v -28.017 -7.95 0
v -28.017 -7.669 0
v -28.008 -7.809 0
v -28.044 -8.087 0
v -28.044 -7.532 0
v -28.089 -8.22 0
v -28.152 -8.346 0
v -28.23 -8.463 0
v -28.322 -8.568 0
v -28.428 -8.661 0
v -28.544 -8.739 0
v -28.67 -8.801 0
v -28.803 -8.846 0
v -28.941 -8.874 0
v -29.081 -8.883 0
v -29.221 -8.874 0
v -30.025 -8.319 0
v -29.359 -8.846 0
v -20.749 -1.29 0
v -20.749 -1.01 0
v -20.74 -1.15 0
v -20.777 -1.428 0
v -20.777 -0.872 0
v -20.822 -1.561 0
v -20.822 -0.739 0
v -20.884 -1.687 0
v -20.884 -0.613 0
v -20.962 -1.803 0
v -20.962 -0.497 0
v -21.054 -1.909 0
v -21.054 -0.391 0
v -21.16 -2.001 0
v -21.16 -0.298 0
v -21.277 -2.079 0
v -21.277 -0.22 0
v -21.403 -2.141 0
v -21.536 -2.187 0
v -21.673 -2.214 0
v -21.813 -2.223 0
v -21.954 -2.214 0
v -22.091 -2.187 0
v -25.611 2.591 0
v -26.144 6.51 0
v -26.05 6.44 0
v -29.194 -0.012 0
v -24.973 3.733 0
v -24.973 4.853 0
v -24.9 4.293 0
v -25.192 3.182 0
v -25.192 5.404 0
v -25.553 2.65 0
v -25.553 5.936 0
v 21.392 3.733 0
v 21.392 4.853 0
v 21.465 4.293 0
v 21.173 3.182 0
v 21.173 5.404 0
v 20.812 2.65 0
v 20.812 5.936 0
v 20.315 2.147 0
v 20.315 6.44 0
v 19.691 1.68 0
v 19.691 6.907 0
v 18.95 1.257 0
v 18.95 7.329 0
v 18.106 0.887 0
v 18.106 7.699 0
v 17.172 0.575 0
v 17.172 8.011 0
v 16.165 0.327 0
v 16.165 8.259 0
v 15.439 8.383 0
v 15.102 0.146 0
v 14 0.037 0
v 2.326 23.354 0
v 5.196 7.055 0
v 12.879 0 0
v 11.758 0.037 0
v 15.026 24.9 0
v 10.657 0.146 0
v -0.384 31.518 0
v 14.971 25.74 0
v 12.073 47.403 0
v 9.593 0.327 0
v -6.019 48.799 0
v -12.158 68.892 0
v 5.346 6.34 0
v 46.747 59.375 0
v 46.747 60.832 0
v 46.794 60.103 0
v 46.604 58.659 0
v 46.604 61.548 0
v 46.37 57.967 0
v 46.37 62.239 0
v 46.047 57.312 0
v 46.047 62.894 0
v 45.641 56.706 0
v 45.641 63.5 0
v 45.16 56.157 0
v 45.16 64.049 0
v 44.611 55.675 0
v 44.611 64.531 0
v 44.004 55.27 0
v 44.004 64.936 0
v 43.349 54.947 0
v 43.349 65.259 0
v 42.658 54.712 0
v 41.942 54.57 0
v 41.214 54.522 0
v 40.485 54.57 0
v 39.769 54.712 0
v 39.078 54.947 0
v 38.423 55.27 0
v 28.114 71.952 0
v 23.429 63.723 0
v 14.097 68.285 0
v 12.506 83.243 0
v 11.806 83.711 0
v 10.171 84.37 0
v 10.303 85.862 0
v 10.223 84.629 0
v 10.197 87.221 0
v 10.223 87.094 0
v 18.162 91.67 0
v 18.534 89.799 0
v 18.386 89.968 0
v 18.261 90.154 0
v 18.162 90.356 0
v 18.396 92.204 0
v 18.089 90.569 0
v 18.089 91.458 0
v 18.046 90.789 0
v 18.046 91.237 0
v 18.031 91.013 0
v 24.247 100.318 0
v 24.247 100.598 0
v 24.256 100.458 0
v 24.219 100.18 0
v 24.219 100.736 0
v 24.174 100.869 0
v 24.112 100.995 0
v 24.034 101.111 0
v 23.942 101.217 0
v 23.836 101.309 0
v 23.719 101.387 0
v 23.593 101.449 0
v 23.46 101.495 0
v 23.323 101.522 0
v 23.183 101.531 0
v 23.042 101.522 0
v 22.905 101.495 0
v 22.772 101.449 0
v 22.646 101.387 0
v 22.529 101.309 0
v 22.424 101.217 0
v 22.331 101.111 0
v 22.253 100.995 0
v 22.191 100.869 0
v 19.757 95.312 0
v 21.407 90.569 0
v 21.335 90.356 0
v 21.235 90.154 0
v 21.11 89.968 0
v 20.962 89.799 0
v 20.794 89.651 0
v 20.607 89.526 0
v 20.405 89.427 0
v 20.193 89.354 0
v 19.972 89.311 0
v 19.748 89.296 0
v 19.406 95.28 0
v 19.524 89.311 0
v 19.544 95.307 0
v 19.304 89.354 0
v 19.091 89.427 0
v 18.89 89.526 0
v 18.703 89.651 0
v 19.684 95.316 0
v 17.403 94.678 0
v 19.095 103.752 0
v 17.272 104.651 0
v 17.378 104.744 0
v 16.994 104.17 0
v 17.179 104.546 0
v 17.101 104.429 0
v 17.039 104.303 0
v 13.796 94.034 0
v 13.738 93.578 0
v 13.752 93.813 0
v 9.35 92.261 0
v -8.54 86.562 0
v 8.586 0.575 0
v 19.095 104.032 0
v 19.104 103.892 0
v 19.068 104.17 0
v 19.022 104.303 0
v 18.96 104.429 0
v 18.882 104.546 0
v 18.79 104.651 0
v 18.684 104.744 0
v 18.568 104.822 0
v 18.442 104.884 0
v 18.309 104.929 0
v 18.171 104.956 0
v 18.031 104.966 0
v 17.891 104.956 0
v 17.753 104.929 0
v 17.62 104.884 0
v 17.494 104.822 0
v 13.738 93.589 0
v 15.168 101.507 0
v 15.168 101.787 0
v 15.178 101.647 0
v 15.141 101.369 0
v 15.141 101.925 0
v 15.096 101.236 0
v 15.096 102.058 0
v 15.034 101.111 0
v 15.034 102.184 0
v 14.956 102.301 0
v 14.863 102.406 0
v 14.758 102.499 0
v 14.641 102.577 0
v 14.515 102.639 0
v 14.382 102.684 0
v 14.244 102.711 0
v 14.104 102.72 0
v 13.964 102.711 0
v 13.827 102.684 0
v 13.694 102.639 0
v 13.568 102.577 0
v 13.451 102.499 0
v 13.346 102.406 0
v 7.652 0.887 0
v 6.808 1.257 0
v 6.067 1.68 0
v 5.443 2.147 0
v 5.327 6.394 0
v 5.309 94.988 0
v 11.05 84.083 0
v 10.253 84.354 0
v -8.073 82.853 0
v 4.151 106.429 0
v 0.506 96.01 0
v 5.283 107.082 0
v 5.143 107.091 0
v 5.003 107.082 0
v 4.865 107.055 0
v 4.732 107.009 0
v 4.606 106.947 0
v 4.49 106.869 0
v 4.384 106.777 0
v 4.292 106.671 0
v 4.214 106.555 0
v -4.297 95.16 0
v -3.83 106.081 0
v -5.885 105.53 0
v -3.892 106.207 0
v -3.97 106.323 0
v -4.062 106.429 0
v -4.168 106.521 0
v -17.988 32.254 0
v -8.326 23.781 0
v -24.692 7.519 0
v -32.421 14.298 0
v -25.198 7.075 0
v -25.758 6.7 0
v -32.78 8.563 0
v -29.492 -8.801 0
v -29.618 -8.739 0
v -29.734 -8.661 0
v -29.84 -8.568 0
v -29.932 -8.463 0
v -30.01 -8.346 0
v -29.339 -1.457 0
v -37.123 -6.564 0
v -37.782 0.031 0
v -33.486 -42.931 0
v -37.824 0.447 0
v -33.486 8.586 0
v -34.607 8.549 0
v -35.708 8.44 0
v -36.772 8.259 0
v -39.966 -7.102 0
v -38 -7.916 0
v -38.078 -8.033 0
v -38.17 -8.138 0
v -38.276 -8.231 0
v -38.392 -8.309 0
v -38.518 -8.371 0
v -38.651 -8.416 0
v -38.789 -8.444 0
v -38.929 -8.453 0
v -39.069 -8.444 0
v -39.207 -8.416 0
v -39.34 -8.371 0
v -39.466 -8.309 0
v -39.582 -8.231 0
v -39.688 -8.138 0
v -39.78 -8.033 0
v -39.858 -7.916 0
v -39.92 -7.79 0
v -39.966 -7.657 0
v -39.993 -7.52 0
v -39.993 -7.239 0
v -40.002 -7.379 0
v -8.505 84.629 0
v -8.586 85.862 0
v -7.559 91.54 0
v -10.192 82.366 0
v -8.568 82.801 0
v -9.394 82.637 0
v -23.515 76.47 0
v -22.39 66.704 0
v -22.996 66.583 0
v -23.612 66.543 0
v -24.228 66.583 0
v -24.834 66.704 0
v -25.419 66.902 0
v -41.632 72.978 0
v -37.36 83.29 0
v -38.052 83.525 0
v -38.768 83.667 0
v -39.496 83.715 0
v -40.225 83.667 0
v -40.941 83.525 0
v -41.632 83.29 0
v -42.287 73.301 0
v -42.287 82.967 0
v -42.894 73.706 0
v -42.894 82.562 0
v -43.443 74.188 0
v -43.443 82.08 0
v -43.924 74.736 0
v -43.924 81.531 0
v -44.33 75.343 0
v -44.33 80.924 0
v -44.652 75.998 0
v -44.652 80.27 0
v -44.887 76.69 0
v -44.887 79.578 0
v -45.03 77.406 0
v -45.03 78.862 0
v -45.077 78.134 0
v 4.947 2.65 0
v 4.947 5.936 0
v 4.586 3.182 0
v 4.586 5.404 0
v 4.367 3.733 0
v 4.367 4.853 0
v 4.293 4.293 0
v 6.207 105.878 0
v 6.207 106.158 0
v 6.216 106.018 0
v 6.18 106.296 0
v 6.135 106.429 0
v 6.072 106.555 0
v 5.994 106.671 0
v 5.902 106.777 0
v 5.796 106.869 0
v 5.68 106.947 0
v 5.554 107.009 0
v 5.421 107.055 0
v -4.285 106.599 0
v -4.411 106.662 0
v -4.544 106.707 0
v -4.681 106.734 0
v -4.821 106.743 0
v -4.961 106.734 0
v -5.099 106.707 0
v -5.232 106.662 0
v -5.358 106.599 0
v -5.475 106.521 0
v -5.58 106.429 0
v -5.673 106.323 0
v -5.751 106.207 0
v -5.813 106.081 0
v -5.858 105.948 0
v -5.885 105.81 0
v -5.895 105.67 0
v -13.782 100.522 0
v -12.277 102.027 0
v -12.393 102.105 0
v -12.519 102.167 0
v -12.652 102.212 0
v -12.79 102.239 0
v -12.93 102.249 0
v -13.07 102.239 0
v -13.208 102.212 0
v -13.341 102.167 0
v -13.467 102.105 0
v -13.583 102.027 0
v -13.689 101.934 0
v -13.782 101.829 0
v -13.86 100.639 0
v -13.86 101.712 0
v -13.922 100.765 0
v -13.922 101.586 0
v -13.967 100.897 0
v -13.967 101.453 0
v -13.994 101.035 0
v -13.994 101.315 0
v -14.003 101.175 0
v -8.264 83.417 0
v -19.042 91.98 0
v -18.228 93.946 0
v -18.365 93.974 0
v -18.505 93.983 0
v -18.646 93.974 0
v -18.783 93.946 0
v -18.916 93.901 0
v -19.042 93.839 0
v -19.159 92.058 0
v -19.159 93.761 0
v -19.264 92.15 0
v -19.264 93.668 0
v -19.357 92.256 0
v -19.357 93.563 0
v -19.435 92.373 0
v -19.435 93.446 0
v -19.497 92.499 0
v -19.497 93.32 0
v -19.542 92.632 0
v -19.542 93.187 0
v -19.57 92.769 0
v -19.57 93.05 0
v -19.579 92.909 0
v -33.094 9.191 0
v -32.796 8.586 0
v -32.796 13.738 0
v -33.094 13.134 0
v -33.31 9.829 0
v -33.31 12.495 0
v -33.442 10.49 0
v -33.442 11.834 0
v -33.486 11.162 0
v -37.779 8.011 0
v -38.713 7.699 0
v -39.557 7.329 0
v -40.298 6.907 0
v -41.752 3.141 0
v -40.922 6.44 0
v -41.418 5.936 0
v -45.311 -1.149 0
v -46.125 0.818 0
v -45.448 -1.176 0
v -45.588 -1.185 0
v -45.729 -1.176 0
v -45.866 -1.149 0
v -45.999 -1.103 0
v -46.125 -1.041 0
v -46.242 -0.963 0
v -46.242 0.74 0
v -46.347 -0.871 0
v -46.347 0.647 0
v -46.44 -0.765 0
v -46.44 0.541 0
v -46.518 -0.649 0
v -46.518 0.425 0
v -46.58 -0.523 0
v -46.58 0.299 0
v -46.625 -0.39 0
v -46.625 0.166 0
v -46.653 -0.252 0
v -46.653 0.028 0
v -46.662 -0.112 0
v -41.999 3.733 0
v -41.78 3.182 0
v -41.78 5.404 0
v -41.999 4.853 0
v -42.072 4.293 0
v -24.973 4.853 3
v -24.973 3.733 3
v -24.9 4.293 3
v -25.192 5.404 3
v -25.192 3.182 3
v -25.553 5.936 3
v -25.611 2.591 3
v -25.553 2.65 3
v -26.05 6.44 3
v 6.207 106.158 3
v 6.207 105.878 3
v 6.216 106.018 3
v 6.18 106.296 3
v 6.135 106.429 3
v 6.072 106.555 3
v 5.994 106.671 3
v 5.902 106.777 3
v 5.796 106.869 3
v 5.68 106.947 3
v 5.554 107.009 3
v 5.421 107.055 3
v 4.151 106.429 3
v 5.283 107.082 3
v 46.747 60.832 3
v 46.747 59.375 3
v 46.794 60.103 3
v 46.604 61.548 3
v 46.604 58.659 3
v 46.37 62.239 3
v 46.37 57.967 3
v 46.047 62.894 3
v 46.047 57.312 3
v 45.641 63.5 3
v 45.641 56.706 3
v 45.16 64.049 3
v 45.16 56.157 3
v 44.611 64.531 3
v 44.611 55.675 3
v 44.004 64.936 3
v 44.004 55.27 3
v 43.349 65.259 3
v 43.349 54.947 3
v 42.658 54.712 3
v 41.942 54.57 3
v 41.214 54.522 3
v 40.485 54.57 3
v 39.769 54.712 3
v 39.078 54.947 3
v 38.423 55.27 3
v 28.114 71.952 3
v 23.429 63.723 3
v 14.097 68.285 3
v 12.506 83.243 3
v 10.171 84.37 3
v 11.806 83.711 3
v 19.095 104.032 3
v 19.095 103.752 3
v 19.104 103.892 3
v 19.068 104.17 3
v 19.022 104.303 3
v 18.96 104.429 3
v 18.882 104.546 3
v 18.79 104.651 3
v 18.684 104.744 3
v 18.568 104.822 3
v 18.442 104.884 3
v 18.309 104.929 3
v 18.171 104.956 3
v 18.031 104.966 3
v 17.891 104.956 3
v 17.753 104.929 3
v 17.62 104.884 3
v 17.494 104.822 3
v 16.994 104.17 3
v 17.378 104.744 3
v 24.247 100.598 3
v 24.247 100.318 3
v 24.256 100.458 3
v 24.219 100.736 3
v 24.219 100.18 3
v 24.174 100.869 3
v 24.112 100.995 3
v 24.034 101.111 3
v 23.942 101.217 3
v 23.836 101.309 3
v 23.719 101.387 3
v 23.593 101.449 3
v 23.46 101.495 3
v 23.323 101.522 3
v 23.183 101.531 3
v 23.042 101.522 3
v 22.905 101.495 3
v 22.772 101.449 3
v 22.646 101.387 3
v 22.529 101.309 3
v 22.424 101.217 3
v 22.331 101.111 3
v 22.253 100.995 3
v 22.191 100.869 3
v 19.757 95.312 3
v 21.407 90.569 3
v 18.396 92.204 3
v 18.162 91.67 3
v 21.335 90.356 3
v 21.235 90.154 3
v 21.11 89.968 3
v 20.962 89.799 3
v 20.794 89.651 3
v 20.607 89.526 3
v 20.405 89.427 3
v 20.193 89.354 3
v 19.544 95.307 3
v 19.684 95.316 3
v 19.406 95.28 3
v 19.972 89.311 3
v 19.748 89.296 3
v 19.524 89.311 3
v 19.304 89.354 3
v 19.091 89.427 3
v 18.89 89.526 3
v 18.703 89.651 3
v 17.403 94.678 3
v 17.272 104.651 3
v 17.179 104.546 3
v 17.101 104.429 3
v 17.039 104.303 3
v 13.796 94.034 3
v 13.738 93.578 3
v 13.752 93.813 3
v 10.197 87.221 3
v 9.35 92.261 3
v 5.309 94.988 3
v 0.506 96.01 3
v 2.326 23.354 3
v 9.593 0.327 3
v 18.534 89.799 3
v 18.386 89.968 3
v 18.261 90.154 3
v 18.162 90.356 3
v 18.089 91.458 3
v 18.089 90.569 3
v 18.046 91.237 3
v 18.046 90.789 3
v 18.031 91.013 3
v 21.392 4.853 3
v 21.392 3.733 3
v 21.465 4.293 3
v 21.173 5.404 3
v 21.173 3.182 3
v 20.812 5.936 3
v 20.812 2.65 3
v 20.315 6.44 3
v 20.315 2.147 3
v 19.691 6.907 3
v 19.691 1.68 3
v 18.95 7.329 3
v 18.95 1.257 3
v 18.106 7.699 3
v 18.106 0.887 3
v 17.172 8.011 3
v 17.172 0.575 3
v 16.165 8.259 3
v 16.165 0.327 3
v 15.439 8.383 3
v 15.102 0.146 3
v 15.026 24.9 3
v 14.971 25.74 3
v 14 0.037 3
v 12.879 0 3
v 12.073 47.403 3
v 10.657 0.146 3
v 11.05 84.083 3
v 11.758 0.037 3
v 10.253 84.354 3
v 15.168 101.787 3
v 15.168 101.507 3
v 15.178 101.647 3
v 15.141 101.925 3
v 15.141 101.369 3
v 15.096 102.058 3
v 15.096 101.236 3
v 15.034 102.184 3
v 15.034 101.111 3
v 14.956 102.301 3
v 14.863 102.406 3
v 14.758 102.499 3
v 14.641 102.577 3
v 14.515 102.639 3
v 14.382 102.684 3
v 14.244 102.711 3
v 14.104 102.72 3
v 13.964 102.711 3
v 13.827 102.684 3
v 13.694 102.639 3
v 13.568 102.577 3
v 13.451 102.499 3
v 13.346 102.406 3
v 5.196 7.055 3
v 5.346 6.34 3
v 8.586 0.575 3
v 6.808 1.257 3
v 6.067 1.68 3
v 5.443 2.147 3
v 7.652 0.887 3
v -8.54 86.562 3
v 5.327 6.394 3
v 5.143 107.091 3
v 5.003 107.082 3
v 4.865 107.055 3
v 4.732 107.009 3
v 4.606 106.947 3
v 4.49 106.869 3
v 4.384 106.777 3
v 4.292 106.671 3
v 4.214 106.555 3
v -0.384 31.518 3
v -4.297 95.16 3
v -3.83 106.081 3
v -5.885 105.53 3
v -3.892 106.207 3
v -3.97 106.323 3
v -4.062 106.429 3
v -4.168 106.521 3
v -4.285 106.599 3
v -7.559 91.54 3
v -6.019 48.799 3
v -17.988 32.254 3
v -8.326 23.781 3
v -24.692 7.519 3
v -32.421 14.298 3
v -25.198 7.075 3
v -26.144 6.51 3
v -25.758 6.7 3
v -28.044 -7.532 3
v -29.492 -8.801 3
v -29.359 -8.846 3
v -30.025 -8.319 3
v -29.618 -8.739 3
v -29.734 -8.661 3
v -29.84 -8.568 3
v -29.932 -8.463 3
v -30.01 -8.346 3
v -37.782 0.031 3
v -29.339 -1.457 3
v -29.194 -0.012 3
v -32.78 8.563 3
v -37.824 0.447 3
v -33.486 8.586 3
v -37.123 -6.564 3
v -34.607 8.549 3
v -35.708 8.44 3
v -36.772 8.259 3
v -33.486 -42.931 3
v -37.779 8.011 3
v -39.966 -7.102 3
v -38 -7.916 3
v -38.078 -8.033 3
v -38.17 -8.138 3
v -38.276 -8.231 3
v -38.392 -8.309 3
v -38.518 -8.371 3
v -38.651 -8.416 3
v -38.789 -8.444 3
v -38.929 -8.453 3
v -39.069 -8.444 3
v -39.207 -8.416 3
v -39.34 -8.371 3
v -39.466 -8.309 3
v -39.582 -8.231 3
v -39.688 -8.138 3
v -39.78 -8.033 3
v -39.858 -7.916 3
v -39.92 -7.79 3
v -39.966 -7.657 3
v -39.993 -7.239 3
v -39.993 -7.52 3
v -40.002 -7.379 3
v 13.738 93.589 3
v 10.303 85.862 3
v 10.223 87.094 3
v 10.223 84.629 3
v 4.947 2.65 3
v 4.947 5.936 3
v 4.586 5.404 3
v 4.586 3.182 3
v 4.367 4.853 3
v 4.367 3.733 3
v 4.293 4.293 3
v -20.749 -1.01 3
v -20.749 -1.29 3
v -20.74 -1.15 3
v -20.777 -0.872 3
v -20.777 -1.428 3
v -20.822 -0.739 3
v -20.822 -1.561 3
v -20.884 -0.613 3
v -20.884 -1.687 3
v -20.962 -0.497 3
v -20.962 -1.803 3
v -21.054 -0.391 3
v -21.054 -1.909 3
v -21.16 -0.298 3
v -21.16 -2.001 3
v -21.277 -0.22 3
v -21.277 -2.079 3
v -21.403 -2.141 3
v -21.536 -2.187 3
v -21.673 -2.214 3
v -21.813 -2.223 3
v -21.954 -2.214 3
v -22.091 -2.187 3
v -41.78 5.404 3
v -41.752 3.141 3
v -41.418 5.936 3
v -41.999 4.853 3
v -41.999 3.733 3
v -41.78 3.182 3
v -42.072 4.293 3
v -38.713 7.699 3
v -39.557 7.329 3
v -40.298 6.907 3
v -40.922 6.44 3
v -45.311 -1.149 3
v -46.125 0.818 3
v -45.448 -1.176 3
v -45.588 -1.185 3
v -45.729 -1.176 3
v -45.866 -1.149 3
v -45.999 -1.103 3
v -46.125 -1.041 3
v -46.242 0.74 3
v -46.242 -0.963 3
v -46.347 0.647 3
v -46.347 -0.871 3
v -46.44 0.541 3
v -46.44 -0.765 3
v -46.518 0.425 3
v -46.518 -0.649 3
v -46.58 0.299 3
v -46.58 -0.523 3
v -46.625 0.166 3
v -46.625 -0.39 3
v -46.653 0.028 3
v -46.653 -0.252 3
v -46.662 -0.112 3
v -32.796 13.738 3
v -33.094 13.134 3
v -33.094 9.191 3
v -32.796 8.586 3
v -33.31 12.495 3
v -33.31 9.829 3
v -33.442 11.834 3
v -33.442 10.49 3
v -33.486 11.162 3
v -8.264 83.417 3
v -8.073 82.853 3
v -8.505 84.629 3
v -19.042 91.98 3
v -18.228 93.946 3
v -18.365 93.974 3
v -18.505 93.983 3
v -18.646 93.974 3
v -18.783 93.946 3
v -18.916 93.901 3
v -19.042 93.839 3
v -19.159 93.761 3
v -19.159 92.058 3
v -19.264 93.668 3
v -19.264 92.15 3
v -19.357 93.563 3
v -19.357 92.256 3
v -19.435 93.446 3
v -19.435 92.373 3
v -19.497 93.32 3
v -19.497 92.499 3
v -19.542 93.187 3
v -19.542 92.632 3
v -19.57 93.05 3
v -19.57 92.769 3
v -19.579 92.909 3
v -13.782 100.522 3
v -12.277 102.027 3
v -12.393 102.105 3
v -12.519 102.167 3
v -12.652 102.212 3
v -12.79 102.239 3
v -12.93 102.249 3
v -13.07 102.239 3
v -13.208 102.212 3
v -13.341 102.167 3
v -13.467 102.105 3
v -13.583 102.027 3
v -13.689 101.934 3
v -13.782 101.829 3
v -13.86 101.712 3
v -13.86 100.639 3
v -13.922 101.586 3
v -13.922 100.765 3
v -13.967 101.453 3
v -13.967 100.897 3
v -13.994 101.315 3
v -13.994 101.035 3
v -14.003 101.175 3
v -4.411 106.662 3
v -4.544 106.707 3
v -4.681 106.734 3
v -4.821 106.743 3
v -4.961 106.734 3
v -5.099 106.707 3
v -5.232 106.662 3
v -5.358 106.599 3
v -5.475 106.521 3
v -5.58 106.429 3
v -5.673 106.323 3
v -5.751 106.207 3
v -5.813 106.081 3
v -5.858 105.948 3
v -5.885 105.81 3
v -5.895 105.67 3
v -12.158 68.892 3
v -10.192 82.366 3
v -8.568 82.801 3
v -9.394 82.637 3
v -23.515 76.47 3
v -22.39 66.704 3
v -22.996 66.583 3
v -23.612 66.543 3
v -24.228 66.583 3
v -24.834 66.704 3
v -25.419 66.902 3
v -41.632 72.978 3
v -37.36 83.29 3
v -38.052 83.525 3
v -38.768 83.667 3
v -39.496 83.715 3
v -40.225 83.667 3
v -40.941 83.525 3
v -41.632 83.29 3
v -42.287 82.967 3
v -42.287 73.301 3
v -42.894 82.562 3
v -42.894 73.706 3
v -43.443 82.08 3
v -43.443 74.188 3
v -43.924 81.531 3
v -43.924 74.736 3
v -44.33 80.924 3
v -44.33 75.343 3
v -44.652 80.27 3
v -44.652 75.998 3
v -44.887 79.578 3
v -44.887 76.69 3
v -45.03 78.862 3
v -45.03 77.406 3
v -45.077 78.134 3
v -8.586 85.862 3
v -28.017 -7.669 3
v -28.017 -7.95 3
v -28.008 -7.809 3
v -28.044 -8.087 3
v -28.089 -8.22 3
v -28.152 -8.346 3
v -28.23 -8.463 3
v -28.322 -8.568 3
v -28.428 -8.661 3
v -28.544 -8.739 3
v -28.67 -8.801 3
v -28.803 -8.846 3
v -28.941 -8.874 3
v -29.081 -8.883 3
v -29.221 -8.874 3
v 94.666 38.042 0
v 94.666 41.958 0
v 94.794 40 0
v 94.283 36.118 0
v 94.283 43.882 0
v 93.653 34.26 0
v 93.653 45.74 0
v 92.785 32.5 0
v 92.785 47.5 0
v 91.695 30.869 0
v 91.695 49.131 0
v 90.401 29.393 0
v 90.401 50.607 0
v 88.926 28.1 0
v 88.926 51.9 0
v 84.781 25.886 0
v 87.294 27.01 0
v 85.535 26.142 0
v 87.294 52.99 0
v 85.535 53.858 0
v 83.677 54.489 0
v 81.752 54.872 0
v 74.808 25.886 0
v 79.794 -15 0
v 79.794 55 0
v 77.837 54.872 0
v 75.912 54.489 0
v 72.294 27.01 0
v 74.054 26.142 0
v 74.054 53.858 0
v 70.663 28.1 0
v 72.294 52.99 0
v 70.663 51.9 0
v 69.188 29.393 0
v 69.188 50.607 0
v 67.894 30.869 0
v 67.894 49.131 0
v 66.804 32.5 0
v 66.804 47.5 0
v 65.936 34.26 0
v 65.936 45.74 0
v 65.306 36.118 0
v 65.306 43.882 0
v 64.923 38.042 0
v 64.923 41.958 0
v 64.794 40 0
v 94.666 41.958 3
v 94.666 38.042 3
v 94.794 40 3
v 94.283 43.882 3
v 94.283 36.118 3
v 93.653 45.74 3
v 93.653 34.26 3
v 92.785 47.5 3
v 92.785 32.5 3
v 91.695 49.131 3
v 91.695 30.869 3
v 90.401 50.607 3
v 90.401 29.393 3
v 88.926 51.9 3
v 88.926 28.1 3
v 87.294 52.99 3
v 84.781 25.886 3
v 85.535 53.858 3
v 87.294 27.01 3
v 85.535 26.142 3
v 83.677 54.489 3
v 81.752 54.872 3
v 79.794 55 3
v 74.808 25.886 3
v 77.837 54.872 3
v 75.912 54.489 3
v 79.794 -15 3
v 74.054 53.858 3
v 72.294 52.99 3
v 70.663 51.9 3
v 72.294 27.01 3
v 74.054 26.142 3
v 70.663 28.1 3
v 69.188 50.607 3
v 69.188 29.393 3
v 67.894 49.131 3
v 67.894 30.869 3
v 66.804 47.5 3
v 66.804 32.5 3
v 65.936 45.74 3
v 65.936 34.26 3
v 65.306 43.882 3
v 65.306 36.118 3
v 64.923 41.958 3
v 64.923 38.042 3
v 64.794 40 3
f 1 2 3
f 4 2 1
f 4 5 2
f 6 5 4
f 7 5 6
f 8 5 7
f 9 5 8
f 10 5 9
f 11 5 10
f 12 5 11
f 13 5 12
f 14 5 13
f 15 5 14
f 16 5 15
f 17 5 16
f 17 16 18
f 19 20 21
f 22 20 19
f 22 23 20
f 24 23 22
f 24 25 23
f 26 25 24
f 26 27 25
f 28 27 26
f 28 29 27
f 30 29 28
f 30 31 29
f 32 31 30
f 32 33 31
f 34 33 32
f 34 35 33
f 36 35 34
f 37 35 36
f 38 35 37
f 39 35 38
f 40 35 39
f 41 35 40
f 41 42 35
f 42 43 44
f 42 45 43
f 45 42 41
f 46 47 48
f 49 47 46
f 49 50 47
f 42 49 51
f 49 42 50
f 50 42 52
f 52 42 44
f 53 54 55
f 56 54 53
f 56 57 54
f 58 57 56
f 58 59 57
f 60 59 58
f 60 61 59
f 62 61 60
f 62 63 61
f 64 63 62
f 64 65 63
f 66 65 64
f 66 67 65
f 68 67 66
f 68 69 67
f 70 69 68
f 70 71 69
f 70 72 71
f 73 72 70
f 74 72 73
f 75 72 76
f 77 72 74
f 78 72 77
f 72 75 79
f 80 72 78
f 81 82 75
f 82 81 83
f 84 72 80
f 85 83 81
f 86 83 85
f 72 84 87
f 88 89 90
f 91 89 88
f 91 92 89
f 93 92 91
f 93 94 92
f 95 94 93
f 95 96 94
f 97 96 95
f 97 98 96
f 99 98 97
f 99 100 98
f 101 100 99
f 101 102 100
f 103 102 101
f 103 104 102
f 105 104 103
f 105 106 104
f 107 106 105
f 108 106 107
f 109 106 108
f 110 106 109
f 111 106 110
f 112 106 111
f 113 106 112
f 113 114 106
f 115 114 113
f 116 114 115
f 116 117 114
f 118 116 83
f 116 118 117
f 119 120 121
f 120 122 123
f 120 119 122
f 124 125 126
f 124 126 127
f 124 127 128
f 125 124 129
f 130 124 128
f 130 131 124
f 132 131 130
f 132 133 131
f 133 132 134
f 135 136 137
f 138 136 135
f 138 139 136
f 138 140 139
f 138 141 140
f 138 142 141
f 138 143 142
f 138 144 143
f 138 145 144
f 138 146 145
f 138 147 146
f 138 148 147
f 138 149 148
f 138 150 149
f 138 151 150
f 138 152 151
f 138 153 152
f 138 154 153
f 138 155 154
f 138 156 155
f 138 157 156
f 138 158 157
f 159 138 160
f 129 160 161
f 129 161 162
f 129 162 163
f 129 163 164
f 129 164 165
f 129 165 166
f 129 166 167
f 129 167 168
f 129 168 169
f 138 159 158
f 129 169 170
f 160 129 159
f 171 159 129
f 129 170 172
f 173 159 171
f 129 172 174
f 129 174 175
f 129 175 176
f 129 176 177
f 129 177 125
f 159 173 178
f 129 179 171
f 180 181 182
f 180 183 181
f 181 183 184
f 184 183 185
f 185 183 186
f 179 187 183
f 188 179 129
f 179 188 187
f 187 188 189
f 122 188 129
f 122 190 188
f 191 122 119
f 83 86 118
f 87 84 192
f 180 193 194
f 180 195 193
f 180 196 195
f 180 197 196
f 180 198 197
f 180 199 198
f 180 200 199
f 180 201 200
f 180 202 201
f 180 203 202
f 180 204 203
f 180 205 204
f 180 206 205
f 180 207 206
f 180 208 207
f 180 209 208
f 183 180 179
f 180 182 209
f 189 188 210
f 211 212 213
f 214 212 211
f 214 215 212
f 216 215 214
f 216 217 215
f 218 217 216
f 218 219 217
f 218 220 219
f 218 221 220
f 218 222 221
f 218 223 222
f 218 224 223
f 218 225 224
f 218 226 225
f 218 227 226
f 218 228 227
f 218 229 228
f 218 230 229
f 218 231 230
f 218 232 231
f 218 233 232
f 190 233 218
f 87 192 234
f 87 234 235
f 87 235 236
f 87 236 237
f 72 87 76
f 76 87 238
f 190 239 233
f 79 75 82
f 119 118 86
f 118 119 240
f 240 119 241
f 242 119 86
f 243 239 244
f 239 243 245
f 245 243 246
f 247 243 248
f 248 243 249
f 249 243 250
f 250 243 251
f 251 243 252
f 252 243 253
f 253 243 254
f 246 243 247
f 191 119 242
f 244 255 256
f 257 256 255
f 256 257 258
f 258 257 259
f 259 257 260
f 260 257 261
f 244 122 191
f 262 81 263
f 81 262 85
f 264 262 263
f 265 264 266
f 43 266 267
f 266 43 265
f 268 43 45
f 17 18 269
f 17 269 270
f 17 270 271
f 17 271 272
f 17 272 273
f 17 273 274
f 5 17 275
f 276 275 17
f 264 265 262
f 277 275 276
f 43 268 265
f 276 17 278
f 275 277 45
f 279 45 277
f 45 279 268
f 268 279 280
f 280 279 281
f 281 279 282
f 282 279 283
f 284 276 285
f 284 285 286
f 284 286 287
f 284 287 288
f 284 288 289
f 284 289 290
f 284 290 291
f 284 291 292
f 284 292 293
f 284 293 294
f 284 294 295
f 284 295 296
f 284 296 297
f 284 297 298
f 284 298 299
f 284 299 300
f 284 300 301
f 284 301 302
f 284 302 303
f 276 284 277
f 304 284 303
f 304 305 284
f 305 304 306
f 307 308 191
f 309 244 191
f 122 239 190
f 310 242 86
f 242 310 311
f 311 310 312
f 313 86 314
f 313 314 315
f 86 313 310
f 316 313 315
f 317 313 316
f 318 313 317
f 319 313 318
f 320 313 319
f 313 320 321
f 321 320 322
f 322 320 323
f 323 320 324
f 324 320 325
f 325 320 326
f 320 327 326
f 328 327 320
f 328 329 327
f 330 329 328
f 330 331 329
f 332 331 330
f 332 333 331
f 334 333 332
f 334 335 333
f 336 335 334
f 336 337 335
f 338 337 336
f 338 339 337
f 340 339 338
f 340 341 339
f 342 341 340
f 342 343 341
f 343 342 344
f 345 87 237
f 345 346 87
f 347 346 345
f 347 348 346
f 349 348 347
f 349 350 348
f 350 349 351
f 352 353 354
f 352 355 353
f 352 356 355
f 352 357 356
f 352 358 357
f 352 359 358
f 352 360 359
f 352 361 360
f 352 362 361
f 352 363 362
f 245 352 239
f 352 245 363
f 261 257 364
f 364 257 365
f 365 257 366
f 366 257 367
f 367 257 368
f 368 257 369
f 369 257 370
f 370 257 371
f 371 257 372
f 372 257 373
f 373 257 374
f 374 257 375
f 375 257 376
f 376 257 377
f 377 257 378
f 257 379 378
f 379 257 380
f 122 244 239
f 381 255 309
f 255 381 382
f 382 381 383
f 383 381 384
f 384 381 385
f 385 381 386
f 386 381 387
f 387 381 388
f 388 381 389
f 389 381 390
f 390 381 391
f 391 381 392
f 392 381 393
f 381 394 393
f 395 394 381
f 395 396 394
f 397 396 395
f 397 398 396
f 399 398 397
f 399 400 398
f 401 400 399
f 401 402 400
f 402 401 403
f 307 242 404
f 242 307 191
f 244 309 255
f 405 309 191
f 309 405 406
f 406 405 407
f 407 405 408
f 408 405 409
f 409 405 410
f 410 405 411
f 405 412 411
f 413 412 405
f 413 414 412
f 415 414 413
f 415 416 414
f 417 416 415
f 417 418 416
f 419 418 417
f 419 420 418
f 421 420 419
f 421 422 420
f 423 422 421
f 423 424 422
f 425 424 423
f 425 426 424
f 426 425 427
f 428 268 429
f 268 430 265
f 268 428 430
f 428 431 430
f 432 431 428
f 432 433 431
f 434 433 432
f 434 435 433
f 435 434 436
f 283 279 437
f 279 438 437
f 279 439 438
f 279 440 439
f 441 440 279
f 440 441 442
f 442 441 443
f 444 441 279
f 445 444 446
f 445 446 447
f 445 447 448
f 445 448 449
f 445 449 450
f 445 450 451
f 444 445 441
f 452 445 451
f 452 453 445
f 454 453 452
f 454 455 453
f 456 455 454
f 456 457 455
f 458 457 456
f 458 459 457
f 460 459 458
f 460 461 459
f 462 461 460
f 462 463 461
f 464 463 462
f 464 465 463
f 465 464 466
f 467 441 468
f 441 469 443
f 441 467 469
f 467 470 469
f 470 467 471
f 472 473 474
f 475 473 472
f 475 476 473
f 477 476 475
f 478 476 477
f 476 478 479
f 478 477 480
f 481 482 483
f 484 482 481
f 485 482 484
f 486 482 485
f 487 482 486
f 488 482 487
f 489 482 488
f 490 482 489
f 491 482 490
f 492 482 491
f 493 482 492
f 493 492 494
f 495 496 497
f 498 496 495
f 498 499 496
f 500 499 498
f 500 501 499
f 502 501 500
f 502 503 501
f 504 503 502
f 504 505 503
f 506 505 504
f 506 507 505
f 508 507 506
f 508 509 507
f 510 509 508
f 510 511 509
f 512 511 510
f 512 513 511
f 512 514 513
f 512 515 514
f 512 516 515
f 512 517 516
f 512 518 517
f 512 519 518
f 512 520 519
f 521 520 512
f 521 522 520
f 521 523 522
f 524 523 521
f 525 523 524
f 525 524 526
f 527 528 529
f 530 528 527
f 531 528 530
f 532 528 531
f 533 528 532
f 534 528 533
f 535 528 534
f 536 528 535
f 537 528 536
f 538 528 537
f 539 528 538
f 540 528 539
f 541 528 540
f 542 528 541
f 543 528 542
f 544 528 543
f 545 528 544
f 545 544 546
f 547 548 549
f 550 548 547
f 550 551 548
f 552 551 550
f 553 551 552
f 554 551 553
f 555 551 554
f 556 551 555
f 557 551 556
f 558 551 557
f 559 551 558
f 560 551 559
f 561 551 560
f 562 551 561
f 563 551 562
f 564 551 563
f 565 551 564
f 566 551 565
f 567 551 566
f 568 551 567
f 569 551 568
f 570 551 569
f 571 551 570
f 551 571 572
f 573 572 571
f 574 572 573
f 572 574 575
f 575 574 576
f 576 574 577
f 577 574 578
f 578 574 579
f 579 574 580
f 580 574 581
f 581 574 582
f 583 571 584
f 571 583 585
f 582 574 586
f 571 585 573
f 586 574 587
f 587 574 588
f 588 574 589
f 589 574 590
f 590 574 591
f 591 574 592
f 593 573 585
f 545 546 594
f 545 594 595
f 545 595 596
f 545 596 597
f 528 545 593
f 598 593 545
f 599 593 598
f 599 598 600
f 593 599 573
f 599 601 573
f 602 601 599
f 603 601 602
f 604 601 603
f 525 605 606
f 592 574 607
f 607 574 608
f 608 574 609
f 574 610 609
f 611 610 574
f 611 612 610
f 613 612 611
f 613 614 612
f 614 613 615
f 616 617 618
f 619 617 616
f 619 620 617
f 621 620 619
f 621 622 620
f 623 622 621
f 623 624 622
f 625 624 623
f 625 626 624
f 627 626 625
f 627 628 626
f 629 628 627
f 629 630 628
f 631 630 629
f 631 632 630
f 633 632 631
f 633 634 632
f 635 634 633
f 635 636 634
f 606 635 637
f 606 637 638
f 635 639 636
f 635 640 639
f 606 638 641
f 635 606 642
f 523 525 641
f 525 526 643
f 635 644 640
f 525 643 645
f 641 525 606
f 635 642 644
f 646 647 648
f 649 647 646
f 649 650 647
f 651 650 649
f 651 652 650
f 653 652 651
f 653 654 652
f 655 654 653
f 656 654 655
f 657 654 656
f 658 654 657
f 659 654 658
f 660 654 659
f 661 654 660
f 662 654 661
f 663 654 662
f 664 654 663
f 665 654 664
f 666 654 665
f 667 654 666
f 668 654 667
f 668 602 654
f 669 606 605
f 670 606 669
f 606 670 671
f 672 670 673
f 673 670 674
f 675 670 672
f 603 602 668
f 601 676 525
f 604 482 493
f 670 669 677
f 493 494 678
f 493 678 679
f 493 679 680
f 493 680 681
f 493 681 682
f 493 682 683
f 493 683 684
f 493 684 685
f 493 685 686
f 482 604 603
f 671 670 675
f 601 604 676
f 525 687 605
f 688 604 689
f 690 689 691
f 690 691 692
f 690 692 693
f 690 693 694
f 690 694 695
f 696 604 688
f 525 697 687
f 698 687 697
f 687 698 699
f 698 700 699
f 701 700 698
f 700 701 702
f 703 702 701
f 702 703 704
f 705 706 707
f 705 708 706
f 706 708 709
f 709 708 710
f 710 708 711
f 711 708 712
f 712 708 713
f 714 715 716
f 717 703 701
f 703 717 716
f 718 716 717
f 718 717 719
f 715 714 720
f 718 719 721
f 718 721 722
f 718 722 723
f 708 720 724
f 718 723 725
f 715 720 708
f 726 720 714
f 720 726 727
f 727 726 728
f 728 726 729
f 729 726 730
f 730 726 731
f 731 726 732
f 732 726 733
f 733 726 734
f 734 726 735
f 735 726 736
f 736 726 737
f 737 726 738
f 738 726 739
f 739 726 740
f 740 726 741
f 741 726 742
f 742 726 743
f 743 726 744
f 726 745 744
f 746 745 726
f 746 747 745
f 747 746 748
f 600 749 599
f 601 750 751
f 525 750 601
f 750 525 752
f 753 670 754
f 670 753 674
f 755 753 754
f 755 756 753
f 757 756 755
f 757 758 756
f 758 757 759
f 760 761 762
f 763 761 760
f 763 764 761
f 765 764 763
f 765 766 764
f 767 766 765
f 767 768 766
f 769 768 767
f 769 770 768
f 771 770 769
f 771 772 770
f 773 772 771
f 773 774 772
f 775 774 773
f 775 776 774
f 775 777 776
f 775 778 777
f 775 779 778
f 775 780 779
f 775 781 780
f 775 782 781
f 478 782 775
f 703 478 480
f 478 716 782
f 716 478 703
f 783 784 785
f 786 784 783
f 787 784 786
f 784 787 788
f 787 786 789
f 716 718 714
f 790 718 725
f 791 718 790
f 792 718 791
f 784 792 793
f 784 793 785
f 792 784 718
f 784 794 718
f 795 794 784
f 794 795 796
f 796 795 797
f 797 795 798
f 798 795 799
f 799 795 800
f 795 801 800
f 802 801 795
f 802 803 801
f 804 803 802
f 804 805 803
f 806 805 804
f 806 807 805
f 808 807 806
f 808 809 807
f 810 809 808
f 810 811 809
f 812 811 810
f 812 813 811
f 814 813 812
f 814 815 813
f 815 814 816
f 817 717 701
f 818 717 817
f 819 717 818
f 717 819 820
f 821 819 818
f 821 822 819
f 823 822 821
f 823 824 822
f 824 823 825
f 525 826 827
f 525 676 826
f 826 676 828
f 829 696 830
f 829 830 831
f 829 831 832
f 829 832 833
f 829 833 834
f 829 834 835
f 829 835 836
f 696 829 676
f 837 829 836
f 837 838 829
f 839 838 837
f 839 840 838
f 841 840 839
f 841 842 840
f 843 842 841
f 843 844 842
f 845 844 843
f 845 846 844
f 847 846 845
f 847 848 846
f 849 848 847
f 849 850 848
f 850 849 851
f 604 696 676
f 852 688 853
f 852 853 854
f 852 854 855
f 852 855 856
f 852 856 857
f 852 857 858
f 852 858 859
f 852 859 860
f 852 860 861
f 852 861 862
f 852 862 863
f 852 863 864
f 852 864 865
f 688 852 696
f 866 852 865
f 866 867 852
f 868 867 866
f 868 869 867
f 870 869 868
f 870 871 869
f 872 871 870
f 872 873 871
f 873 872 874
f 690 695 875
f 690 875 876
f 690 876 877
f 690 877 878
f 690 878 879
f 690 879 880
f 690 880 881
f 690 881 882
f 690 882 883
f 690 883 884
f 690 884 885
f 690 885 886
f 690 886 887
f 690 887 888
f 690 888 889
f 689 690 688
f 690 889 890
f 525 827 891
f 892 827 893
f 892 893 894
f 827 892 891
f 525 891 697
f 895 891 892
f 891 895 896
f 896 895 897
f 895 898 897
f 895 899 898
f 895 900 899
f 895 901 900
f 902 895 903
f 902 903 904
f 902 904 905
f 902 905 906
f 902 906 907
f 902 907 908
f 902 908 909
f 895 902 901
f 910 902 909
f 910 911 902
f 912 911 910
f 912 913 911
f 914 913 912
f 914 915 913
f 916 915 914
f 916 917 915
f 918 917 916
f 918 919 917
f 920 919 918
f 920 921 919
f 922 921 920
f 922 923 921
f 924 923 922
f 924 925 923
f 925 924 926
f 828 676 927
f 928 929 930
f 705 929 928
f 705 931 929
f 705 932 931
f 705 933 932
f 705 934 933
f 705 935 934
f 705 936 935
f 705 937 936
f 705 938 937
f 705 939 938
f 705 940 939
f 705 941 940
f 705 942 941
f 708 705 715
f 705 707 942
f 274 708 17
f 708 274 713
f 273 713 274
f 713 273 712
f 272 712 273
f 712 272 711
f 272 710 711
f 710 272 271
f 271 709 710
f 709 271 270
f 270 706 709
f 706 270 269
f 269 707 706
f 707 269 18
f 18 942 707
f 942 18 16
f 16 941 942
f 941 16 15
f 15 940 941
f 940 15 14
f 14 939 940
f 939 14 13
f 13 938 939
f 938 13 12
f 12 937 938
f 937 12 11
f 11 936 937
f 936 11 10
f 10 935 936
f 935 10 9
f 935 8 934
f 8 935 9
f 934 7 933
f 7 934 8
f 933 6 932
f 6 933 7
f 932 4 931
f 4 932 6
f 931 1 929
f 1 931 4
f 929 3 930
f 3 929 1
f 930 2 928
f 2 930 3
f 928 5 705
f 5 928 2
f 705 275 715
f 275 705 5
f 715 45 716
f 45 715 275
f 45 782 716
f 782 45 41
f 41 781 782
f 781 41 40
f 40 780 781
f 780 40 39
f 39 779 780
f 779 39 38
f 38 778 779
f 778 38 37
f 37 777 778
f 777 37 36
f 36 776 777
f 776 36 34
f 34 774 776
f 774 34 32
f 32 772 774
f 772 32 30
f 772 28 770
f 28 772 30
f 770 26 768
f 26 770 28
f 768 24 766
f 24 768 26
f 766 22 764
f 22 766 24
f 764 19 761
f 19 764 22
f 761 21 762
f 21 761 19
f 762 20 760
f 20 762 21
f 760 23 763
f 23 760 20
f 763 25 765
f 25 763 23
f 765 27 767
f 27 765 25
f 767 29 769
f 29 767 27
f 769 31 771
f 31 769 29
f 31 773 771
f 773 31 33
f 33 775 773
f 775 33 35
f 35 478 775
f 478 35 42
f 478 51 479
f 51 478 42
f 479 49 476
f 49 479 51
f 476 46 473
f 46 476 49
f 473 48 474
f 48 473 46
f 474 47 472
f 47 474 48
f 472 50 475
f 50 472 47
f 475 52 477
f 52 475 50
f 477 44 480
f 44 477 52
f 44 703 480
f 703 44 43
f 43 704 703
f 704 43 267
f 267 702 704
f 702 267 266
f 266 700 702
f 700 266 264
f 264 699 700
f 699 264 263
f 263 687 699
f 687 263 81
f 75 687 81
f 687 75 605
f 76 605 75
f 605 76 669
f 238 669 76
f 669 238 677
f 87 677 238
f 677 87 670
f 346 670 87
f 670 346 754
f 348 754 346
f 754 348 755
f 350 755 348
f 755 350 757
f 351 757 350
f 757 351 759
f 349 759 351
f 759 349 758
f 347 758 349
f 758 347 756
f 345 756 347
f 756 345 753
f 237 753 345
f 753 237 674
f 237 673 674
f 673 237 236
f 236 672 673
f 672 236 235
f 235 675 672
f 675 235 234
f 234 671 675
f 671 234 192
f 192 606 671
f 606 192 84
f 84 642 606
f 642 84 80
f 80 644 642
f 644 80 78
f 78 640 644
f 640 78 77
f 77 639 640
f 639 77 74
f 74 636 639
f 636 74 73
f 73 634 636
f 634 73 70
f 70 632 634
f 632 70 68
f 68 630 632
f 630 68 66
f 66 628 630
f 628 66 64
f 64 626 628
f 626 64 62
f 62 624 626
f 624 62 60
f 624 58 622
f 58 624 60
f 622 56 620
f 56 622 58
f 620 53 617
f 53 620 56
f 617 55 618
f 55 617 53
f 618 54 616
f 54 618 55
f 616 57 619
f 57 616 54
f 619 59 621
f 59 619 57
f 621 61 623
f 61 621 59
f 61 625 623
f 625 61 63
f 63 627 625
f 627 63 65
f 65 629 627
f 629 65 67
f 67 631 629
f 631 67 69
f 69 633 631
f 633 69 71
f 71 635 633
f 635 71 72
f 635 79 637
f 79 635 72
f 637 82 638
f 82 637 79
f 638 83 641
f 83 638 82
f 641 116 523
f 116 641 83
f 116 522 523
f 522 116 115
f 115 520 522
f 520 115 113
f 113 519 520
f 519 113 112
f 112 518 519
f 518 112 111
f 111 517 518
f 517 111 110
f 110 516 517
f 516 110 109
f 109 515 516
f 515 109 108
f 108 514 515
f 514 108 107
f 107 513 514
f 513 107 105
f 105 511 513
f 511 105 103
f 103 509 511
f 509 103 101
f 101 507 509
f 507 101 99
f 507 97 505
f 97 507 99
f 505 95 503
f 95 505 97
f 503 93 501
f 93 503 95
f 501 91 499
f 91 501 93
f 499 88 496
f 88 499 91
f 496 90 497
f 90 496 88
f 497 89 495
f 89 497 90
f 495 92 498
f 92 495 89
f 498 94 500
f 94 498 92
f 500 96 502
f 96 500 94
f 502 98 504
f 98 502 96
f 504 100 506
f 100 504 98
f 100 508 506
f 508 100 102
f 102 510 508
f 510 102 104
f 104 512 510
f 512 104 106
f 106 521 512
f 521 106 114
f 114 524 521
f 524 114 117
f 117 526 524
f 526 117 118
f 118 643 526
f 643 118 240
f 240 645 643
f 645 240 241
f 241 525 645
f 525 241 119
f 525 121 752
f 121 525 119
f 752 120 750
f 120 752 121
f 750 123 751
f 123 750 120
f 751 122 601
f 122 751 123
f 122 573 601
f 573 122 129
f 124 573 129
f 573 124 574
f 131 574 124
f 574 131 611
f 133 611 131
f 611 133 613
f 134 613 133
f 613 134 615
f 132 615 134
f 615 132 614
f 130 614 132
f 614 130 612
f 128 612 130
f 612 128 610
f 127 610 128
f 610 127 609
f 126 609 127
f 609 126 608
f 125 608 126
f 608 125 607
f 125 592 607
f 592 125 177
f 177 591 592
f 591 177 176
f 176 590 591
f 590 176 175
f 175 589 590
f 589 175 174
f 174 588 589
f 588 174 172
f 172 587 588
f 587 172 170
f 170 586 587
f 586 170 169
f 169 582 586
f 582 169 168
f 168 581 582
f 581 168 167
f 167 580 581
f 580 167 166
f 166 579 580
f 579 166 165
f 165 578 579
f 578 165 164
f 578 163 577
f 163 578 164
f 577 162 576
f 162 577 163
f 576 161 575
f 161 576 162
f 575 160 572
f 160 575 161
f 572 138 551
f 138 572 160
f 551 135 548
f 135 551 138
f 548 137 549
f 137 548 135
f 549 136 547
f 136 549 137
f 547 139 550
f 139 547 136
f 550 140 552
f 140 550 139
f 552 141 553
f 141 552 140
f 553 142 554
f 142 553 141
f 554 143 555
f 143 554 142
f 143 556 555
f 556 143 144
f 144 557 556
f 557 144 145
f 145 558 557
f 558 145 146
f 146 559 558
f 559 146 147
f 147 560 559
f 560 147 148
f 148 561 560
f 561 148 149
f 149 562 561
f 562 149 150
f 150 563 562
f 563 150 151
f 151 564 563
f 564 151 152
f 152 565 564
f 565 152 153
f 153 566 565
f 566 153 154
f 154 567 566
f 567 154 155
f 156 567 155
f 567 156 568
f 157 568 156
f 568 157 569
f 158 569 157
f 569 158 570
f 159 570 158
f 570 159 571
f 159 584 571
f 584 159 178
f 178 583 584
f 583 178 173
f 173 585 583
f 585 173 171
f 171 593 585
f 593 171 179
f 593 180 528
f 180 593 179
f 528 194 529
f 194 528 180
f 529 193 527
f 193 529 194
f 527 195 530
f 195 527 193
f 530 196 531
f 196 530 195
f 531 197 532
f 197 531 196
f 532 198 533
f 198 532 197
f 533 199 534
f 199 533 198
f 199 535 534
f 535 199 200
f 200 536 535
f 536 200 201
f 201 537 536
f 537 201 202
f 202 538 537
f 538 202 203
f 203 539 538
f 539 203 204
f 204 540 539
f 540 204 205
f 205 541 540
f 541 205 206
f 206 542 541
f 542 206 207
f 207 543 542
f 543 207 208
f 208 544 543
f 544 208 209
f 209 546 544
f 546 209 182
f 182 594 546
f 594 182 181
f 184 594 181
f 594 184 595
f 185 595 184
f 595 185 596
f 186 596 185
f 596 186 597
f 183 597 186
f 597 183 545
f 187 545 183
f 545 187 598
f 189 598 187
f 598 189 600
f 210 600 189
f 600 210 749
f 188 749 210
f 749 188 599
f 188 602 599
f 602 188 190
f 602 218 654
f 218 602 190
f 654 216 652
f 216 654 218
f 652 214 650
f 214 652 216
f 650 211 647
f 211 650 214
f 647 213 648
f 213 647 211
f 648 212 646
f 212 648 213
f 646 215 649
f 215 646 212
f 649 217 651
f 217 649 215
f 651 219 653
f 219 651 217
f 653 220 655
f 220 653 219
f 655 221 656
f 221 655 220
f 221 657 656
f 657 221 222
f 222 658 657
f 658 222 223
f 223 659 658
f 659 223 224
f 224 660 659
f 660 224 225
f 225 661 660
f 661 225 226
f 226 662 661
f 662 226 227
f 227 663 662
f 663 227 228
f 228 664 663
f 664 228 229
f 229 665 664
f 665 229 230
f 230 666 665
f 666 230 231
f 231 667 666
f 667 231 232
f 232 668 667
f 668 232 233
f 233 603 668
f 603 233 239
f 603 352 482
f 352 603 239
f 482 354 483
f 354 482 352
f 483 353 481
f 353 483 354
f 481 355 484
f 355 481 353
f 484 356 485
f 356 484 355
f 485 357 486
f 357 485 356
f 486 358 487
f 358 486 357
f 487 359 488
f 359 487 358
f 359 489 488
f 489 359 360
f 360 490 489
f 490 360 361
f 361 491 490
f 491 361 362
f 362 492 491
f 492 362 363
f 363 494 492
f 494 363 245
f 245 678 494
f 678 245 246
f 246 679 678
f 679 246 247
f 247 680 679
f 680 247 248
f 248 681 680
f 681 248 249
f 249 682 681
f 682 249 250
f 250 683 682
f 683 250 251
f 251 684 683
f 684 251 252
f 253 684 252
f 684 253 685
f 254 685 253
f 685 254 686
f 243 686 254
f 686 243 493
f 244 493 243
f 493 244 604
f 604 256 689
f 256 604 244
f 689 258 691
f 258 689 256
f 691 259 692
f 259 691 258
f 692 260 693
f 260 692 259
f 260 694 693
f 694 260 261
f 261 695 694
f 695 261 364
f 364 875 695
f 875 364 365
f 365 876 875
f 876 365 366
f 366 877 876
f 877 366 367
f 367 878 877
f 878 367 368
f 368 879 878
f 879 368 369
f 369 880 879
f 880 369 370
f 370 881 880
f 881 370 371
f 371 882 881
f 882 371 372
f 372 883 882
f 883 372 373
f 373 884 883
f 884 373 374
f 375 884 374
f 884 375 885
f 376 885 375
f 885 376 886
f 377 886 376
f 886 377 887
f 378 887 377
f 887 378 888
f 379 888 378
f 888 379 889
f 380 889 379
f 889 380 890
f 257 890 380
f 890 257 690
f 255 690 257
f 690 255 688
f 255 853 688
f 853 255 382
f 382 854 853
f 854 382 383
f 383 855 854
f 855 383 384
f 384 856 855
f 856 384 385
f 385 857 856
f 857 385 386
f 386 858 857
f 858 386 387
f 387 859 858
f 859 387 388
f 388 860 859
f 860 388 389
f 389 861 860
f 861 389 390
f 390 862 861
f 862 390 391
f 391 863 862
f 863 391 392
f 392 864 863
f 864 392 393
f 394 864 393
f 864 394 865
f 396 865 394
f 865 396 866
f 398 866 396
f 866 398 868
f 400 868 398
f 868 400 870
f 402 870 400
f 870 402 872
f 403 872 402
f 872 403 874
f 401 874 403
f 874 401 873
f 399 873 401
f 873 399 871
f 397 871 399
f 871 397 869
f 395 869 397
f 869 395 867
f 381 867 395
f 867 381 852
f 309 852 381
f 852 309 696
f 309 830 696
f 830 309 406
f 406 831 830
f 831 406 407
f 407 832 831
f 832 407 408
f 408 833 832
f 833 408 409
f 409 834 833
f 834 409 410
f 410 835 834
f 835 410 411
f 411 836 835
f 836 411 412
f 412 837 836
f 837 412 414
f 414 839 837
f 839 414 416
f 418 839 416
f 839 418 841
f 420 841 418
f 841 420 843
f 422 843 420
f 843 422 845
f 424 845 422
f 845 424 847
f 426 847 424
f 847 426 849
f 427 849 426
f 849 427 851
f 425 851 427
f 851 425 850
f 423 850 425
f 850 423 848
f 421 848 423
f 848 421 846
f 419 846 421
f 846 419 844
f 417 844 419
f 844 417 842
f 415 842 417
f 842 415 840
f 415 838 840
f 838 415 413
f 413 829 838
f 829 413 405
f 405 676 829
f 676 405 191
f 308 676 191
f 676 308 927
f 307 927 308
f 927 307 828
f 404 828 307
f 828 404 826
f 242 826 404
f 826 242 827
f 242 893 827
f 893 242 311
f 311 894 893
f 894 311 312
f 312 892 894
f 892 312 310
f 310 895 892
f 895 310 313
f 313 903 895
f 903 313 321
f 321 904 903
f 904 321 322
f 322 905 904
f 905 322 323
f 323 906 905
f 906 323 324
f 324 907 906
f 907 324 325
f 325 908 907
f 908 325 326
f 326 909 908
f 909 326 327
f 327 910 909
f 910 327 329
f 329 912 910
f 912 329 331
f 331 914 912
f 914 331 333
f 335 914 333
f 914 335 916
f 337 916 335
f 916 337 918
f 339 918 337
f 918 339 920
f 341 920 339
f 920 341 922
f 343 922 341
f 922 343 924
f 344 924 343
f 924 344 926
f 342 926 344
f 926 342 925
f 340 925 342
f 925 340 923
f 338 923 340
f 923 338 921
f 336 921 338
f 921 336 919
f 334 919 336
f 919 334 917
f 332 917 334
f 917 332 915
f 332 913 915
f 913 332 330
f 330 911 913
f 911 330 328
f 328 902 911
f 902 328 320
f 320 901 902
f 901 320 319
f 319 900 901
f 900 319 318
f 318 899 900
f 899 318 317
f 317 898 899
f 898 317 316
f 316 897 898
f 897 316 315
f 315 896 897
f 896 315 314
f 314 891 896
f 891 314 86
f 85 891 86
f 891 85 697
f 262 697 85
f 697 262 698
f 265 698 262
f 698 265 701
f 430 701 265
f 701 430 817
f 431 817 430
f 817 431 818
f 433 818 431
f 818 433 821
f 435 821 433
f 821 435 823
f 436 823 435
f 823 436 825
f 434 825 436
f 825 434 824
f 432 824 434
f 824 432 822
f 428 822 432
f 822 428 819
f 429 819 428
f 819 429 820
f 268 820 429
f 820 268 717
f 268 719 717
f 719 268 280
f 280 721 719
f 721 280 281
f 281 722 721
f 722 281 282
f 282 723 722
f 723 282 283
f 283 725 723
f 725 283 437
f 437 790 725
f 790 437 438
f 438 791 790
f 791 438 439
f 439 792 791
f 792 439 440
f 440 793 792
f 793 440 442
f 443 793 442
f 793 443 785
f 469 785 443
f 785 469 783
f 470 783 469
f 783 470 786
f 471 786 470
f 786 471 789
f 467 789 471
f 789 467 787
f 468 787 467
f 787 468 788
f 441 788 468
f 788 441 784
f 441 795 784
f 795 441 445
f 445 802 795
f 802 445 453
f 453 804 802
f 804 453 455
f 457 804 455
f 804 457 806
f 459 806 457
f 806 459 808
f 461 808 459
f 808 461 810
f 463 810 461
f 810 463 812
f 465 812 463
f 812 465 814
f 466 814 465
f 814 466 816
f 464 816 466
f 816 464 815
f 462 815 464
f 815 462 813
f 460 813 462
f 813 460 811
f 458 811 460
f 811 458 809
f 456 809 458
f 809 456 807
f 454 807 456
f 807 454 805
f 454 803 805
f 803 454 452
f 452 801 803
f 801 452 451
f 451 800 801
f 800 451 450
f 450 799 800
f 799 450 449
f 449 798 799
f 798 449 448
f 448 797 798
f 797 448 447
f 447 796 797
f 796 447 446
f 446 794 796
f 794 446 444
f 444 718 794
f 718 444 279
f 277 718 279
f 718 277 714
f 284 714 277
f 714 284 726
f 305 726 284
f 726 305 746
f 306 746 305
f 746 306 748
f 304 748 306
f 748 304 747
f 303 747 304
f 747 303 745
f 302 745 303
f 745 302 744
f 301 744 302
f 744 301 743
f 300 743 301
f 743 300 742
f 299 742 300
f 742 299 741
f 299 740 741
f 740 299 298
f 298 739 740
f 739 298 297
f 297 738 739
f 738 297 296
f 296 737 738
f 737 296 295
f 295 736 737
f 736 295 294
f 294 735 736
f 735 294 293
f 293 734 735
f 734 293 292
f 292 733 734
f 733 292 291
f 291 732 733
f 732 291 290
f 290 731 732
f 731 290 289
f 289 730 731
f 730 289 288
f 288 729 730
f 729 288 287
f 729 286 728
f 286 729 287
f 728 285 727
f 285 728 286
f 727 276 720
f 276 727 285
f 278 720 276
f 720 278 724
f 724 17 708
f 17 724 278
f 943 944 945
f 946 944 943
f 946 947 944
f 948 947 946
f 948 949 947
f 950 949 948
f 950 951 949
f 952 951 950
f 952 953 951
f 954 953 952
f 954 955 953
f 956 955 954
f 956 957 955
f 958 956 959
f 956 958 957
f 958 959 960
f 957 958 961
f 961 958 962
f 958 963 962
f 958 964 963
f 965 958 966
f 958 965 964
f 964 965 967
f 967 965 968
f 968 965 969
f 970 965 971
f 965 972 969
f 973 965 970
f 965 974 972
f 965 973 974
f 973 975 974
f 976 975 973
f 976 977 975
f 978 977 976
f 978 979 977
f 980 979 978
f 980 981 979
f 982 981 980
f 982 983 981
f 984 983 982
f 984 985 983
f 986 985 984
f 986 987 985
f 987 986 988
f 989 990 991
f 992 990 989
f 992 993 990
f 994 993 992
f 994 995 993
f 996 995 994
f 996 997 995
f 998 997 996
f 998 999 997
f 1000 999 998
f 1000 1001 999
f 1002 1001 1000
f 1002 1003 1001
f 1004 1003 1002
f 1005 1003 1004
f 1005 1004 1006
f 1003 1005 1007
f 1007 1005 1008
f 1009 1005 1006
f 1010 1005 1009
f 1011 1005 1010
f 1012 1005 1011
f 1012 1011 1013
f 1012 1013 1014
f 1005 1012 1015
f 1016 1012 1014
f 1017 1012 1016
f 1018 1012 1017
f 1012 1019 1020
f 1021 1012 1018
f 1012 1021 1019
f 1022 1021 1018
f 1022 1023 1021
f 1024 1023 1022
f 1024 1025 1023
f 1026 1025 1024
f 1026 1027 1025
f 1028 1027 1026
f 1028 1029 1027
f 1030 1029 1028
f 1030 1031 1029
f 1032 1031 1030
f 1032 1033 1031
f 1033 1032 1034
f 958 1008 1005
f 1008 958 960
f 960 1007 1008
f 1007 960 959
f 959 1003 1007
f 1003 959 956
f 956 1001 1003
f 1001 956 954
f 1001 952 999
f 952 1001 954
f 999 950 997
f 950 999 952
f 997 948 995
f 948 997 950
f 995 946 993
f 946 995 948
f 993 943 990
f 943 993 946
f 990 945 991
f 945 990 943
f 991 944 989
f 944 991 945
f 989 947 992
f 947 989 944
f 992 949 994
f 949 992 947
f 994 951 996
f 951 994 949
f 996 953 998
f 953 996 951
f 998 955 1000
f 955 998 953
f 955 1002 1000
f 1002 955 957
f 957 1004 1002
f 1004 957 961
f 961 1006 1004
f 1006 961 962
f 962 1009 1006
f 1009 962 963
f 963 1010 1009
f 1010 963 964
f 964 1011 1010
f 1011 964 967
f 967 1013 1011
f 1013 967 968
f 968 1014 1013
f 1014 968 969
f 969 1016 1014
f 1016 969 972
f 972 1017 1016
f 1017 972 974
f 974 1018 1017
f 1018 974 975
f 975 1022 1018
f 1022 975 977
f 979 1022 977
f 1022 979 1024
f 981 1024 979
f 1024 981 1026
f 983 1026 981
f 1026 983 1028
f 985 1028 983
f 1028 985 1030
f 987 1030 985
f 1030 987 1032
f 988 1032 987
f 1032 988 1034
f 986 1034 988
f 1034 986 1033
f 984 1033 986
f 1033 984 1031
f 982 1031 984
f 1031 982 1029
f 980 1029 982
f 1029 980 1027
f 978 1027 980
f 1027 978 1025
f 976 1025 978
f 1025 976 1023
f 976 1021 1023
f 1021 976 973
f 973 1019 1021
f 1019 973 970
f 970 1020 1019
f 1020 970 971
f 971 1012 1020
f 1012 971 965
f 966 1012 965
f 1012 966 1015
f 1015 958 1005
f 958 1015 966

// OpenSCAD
// BambuMaker: "Whiffed Kick" Soccer Cake Topper
// Comic-style back-view soccer player caught mid-whiff, plus a matching
// soccer ball — flat silhouette picks, the way store-bought acrylic cake
// toppers are made. Two independent parts share one bed layout: the
// player (left) and the ball (right), each with its own integrated stake
// for pushing into a cake.
//
// Print orientation: lay flat, large face down on the bed. Both parts are
// a single uniform-thickness 2D extrusion (no taper, no relief), so every
// printed layer has the same footprint — zero overhangs, zero supports,
// regardless of how wild the pose looks.
//
// This is a single-material silhouette rendition: fine line detail from
// source art (jersey number, cleat logo, ball seams, motion lines) can't
// survive a single-filament FDM print at this scale, so it's simplified
// to a bold, chunky outline. Paint or add a vinyl decal afterward if you
// want that detail back.
//
// Default footprint lands right around 148 x 150 mm — comfortably inside
// the 170 mm safety margin, but close enough to the 150 mm flag threshold
// to call out explicitly (per design principles).
//
// @param figure_height_mm 150
// @param plate_thickness 3
// @param ball_diameter_mm 30
// @param ball_stake_len_mm 40
// @param ball_stake_width_mm 10
// @param gap_mm 18

figure_height_mm    = 150;  // player pick height: hair tips to stake tip (mm)
plate_thickness     = 3;    // uniform slab thickness (mm) - prints flat, no supports
ball_diameter_mm    = 30;   // soccer ball pick diameter (mm)
ball_stake_len_mm   = 40;   // ball pick's own stake length (mm)
ball_stake_width_mm = 10;   // ball pick's stake width where it meets the ball (mm)
gap_mm              = 18;   // clearance between the two picks on the bed (mm)

$fn = 48;

// ---------------------------------------------------------------------------
// 2D helpers
// ---------------------------------------------------------------------------
module limb(p1, r1, p2, r2) {
    hull() {
        translate(p1) circle(r = r1);
        translate(p2) circle(r = r2);
    }
}

module spike(base, r_base, tip, r_tip) {
    hull() {
        translate(base) circle(r = r_base);
        translate(tip) circle(r = r_tip);
    }
}

// ---------------------------------------------------------------------------
// Player silhouette, drawn in fixed "design units" then uniformly scaled to
// figure_height_mm so the whole pose stays proportional as it's resized.
// ---------------------------------------------------------------------------
module player_design() {
    // Named joints (design units) — everything else derives from these.
    head_c     = [2, 200];    head_r      = 22;
    shoulder_L = [-18, 178];  shoulder_r  = 15;
    shoulder_R = [20, 182];
    elbow_L    = [-55, 166];  elbow_r     = 11;
    hand_L     = [-92, 182];  hand_r      = 13;
    elbow_R    = [60, 158];
    hand_R     = [96, 140];
    hip        = [8, 110];    hip_r       = 20;
    knee_R     = [20, 58];    knee_r      = 15;   // planted (standing) leg
    ankle_R    = [24, 18];    ankle_r     = 12;
    foot_R     = [30, 10];    foot_rx     = 20;  foot_ry = 10;
    knee_L     = [-30, 66];                        // kicking (whiffed) leg
    ankle_L    = [-66, 26];
    foot_L     = [-78, 10];   stake_top_w = 22;   // design units (~10 mm @ default scale)
    stake_tip  = foot_L + [0, -110];

    union() {
        // torso
        hull() {
            translate(shoulder_L) circle(r = shoulder_r);
            translate(shoulder_R) circle(r = shoulder_r);
            translate(hip)        circle(r = hip_r);
        }

        // head
        translate(head_c) circle(r = head_r);

        // spiky hair fanned around the crown
        for (a = [-70, -42, -16, 12, 40, 66])
            spike(head_c + head_r * 0.75 * [sin(a), cos(a)], 6.5,
                  head_c + (head_r + 26) * [sin(a), cos(a)], 2.5);

        // arms spread wide for balance
        limb(shoulder_L, shoulder_r, elbow_L, elbow_r);
        limb(elbow_L, elbow_r, hand_L, hand_r);
        limb(shoulder_R, shoulder_r, elbow_R, elbow_r);
        limb(elbow_R, elbow_r, hand_R, hand_r);

        // planted leg (standing, weight-bearing)
        limb(hip, hip_r, knee_R, knee_r);
        limb(knee_R, knee_r, ankle_R, ankle_r);
        translate(foot_R) scale([foot_rx / 10, foot_ry / 10]) circle(r = 10);

        // kicking leg, swung through empty air past where the ball was
        limb(hip, hip_r, knee_L, knee_r);
        limb(knee_L, knee_r, ankle_L, ankle_r);
        translate(foot_L) scale([foot_rx / 10, foot_ry / 10]) circle(r = 10);

        // little "whiff" impact burst at the kicking foot
        for (a = [200, 245, 290, 335])
            spike(foot_L + 12 * [cos(a), sin(a)], 5,
                  foot_L + 30 * [cos(a), sin(a)], 2.5);

        // comic motion marks above the head
        spike(head_c + [34, 18], 4, head_c + [40, 42], 2.5);
        spike(head_c + [44, 12], 4, head_c + [52, 34], 2.5);

        // integrated stake, rooted at the whiffed foot
        translate(foot_L)
            polygon([[-stake_top_w / 2, 0], [stake_top_w / 2, 0],
                     stake_tip - foot_L]);
    }
}

// Measured span of player_design(): tallest hair spike (~249.4) down to
// stake tip (-100) — verified against the exported mesh's bounding box.
design_span  = 349.4;
player_scale = figure_height_mm / design_span;

module player_pick() {
    linear_extrude(plate_thickness)
        scale([player_scale, player_scale])
            player_design();
}

// ---------------------------------------------------------------------------
// Ball pick — plain silhouette disc (seams simplified to a few chunky hint
// marks; true stitch lines are too fine to survive at this scale) plus its
// own small stake.
// ---------------------------------------------------------------------------
module ball_pick() {
    r = ball_diameter_mm / 2;
    linear_extrude(plate_thickness)
        union() {
            circle(r = r);
            for (a = [30, 150, 270])
                translate(r * 0.45 * [cos(a), sin(a)]) circle(r = r * 0.18);
            polygon([[-ball_stake_width_mm / 2, -r + 1],
                     [ ball_stake_width_mm / 2, -r + 1],
                     [0, -r - ball_stake_len_mm]]);
        }
}

// ---------------------------------------------------------------------------
// Bed layout — two separate picks, each flat and self-supporting.
// ---------------------------------------------------------------------------
player_right_extent = 109;  // design-unit x of the player's far hand + radius

player_pick();

translate([player_right_extent * player_scale + gap_mm + ball_diameter_mm / 2, 40, 0])
    ball_pick();
